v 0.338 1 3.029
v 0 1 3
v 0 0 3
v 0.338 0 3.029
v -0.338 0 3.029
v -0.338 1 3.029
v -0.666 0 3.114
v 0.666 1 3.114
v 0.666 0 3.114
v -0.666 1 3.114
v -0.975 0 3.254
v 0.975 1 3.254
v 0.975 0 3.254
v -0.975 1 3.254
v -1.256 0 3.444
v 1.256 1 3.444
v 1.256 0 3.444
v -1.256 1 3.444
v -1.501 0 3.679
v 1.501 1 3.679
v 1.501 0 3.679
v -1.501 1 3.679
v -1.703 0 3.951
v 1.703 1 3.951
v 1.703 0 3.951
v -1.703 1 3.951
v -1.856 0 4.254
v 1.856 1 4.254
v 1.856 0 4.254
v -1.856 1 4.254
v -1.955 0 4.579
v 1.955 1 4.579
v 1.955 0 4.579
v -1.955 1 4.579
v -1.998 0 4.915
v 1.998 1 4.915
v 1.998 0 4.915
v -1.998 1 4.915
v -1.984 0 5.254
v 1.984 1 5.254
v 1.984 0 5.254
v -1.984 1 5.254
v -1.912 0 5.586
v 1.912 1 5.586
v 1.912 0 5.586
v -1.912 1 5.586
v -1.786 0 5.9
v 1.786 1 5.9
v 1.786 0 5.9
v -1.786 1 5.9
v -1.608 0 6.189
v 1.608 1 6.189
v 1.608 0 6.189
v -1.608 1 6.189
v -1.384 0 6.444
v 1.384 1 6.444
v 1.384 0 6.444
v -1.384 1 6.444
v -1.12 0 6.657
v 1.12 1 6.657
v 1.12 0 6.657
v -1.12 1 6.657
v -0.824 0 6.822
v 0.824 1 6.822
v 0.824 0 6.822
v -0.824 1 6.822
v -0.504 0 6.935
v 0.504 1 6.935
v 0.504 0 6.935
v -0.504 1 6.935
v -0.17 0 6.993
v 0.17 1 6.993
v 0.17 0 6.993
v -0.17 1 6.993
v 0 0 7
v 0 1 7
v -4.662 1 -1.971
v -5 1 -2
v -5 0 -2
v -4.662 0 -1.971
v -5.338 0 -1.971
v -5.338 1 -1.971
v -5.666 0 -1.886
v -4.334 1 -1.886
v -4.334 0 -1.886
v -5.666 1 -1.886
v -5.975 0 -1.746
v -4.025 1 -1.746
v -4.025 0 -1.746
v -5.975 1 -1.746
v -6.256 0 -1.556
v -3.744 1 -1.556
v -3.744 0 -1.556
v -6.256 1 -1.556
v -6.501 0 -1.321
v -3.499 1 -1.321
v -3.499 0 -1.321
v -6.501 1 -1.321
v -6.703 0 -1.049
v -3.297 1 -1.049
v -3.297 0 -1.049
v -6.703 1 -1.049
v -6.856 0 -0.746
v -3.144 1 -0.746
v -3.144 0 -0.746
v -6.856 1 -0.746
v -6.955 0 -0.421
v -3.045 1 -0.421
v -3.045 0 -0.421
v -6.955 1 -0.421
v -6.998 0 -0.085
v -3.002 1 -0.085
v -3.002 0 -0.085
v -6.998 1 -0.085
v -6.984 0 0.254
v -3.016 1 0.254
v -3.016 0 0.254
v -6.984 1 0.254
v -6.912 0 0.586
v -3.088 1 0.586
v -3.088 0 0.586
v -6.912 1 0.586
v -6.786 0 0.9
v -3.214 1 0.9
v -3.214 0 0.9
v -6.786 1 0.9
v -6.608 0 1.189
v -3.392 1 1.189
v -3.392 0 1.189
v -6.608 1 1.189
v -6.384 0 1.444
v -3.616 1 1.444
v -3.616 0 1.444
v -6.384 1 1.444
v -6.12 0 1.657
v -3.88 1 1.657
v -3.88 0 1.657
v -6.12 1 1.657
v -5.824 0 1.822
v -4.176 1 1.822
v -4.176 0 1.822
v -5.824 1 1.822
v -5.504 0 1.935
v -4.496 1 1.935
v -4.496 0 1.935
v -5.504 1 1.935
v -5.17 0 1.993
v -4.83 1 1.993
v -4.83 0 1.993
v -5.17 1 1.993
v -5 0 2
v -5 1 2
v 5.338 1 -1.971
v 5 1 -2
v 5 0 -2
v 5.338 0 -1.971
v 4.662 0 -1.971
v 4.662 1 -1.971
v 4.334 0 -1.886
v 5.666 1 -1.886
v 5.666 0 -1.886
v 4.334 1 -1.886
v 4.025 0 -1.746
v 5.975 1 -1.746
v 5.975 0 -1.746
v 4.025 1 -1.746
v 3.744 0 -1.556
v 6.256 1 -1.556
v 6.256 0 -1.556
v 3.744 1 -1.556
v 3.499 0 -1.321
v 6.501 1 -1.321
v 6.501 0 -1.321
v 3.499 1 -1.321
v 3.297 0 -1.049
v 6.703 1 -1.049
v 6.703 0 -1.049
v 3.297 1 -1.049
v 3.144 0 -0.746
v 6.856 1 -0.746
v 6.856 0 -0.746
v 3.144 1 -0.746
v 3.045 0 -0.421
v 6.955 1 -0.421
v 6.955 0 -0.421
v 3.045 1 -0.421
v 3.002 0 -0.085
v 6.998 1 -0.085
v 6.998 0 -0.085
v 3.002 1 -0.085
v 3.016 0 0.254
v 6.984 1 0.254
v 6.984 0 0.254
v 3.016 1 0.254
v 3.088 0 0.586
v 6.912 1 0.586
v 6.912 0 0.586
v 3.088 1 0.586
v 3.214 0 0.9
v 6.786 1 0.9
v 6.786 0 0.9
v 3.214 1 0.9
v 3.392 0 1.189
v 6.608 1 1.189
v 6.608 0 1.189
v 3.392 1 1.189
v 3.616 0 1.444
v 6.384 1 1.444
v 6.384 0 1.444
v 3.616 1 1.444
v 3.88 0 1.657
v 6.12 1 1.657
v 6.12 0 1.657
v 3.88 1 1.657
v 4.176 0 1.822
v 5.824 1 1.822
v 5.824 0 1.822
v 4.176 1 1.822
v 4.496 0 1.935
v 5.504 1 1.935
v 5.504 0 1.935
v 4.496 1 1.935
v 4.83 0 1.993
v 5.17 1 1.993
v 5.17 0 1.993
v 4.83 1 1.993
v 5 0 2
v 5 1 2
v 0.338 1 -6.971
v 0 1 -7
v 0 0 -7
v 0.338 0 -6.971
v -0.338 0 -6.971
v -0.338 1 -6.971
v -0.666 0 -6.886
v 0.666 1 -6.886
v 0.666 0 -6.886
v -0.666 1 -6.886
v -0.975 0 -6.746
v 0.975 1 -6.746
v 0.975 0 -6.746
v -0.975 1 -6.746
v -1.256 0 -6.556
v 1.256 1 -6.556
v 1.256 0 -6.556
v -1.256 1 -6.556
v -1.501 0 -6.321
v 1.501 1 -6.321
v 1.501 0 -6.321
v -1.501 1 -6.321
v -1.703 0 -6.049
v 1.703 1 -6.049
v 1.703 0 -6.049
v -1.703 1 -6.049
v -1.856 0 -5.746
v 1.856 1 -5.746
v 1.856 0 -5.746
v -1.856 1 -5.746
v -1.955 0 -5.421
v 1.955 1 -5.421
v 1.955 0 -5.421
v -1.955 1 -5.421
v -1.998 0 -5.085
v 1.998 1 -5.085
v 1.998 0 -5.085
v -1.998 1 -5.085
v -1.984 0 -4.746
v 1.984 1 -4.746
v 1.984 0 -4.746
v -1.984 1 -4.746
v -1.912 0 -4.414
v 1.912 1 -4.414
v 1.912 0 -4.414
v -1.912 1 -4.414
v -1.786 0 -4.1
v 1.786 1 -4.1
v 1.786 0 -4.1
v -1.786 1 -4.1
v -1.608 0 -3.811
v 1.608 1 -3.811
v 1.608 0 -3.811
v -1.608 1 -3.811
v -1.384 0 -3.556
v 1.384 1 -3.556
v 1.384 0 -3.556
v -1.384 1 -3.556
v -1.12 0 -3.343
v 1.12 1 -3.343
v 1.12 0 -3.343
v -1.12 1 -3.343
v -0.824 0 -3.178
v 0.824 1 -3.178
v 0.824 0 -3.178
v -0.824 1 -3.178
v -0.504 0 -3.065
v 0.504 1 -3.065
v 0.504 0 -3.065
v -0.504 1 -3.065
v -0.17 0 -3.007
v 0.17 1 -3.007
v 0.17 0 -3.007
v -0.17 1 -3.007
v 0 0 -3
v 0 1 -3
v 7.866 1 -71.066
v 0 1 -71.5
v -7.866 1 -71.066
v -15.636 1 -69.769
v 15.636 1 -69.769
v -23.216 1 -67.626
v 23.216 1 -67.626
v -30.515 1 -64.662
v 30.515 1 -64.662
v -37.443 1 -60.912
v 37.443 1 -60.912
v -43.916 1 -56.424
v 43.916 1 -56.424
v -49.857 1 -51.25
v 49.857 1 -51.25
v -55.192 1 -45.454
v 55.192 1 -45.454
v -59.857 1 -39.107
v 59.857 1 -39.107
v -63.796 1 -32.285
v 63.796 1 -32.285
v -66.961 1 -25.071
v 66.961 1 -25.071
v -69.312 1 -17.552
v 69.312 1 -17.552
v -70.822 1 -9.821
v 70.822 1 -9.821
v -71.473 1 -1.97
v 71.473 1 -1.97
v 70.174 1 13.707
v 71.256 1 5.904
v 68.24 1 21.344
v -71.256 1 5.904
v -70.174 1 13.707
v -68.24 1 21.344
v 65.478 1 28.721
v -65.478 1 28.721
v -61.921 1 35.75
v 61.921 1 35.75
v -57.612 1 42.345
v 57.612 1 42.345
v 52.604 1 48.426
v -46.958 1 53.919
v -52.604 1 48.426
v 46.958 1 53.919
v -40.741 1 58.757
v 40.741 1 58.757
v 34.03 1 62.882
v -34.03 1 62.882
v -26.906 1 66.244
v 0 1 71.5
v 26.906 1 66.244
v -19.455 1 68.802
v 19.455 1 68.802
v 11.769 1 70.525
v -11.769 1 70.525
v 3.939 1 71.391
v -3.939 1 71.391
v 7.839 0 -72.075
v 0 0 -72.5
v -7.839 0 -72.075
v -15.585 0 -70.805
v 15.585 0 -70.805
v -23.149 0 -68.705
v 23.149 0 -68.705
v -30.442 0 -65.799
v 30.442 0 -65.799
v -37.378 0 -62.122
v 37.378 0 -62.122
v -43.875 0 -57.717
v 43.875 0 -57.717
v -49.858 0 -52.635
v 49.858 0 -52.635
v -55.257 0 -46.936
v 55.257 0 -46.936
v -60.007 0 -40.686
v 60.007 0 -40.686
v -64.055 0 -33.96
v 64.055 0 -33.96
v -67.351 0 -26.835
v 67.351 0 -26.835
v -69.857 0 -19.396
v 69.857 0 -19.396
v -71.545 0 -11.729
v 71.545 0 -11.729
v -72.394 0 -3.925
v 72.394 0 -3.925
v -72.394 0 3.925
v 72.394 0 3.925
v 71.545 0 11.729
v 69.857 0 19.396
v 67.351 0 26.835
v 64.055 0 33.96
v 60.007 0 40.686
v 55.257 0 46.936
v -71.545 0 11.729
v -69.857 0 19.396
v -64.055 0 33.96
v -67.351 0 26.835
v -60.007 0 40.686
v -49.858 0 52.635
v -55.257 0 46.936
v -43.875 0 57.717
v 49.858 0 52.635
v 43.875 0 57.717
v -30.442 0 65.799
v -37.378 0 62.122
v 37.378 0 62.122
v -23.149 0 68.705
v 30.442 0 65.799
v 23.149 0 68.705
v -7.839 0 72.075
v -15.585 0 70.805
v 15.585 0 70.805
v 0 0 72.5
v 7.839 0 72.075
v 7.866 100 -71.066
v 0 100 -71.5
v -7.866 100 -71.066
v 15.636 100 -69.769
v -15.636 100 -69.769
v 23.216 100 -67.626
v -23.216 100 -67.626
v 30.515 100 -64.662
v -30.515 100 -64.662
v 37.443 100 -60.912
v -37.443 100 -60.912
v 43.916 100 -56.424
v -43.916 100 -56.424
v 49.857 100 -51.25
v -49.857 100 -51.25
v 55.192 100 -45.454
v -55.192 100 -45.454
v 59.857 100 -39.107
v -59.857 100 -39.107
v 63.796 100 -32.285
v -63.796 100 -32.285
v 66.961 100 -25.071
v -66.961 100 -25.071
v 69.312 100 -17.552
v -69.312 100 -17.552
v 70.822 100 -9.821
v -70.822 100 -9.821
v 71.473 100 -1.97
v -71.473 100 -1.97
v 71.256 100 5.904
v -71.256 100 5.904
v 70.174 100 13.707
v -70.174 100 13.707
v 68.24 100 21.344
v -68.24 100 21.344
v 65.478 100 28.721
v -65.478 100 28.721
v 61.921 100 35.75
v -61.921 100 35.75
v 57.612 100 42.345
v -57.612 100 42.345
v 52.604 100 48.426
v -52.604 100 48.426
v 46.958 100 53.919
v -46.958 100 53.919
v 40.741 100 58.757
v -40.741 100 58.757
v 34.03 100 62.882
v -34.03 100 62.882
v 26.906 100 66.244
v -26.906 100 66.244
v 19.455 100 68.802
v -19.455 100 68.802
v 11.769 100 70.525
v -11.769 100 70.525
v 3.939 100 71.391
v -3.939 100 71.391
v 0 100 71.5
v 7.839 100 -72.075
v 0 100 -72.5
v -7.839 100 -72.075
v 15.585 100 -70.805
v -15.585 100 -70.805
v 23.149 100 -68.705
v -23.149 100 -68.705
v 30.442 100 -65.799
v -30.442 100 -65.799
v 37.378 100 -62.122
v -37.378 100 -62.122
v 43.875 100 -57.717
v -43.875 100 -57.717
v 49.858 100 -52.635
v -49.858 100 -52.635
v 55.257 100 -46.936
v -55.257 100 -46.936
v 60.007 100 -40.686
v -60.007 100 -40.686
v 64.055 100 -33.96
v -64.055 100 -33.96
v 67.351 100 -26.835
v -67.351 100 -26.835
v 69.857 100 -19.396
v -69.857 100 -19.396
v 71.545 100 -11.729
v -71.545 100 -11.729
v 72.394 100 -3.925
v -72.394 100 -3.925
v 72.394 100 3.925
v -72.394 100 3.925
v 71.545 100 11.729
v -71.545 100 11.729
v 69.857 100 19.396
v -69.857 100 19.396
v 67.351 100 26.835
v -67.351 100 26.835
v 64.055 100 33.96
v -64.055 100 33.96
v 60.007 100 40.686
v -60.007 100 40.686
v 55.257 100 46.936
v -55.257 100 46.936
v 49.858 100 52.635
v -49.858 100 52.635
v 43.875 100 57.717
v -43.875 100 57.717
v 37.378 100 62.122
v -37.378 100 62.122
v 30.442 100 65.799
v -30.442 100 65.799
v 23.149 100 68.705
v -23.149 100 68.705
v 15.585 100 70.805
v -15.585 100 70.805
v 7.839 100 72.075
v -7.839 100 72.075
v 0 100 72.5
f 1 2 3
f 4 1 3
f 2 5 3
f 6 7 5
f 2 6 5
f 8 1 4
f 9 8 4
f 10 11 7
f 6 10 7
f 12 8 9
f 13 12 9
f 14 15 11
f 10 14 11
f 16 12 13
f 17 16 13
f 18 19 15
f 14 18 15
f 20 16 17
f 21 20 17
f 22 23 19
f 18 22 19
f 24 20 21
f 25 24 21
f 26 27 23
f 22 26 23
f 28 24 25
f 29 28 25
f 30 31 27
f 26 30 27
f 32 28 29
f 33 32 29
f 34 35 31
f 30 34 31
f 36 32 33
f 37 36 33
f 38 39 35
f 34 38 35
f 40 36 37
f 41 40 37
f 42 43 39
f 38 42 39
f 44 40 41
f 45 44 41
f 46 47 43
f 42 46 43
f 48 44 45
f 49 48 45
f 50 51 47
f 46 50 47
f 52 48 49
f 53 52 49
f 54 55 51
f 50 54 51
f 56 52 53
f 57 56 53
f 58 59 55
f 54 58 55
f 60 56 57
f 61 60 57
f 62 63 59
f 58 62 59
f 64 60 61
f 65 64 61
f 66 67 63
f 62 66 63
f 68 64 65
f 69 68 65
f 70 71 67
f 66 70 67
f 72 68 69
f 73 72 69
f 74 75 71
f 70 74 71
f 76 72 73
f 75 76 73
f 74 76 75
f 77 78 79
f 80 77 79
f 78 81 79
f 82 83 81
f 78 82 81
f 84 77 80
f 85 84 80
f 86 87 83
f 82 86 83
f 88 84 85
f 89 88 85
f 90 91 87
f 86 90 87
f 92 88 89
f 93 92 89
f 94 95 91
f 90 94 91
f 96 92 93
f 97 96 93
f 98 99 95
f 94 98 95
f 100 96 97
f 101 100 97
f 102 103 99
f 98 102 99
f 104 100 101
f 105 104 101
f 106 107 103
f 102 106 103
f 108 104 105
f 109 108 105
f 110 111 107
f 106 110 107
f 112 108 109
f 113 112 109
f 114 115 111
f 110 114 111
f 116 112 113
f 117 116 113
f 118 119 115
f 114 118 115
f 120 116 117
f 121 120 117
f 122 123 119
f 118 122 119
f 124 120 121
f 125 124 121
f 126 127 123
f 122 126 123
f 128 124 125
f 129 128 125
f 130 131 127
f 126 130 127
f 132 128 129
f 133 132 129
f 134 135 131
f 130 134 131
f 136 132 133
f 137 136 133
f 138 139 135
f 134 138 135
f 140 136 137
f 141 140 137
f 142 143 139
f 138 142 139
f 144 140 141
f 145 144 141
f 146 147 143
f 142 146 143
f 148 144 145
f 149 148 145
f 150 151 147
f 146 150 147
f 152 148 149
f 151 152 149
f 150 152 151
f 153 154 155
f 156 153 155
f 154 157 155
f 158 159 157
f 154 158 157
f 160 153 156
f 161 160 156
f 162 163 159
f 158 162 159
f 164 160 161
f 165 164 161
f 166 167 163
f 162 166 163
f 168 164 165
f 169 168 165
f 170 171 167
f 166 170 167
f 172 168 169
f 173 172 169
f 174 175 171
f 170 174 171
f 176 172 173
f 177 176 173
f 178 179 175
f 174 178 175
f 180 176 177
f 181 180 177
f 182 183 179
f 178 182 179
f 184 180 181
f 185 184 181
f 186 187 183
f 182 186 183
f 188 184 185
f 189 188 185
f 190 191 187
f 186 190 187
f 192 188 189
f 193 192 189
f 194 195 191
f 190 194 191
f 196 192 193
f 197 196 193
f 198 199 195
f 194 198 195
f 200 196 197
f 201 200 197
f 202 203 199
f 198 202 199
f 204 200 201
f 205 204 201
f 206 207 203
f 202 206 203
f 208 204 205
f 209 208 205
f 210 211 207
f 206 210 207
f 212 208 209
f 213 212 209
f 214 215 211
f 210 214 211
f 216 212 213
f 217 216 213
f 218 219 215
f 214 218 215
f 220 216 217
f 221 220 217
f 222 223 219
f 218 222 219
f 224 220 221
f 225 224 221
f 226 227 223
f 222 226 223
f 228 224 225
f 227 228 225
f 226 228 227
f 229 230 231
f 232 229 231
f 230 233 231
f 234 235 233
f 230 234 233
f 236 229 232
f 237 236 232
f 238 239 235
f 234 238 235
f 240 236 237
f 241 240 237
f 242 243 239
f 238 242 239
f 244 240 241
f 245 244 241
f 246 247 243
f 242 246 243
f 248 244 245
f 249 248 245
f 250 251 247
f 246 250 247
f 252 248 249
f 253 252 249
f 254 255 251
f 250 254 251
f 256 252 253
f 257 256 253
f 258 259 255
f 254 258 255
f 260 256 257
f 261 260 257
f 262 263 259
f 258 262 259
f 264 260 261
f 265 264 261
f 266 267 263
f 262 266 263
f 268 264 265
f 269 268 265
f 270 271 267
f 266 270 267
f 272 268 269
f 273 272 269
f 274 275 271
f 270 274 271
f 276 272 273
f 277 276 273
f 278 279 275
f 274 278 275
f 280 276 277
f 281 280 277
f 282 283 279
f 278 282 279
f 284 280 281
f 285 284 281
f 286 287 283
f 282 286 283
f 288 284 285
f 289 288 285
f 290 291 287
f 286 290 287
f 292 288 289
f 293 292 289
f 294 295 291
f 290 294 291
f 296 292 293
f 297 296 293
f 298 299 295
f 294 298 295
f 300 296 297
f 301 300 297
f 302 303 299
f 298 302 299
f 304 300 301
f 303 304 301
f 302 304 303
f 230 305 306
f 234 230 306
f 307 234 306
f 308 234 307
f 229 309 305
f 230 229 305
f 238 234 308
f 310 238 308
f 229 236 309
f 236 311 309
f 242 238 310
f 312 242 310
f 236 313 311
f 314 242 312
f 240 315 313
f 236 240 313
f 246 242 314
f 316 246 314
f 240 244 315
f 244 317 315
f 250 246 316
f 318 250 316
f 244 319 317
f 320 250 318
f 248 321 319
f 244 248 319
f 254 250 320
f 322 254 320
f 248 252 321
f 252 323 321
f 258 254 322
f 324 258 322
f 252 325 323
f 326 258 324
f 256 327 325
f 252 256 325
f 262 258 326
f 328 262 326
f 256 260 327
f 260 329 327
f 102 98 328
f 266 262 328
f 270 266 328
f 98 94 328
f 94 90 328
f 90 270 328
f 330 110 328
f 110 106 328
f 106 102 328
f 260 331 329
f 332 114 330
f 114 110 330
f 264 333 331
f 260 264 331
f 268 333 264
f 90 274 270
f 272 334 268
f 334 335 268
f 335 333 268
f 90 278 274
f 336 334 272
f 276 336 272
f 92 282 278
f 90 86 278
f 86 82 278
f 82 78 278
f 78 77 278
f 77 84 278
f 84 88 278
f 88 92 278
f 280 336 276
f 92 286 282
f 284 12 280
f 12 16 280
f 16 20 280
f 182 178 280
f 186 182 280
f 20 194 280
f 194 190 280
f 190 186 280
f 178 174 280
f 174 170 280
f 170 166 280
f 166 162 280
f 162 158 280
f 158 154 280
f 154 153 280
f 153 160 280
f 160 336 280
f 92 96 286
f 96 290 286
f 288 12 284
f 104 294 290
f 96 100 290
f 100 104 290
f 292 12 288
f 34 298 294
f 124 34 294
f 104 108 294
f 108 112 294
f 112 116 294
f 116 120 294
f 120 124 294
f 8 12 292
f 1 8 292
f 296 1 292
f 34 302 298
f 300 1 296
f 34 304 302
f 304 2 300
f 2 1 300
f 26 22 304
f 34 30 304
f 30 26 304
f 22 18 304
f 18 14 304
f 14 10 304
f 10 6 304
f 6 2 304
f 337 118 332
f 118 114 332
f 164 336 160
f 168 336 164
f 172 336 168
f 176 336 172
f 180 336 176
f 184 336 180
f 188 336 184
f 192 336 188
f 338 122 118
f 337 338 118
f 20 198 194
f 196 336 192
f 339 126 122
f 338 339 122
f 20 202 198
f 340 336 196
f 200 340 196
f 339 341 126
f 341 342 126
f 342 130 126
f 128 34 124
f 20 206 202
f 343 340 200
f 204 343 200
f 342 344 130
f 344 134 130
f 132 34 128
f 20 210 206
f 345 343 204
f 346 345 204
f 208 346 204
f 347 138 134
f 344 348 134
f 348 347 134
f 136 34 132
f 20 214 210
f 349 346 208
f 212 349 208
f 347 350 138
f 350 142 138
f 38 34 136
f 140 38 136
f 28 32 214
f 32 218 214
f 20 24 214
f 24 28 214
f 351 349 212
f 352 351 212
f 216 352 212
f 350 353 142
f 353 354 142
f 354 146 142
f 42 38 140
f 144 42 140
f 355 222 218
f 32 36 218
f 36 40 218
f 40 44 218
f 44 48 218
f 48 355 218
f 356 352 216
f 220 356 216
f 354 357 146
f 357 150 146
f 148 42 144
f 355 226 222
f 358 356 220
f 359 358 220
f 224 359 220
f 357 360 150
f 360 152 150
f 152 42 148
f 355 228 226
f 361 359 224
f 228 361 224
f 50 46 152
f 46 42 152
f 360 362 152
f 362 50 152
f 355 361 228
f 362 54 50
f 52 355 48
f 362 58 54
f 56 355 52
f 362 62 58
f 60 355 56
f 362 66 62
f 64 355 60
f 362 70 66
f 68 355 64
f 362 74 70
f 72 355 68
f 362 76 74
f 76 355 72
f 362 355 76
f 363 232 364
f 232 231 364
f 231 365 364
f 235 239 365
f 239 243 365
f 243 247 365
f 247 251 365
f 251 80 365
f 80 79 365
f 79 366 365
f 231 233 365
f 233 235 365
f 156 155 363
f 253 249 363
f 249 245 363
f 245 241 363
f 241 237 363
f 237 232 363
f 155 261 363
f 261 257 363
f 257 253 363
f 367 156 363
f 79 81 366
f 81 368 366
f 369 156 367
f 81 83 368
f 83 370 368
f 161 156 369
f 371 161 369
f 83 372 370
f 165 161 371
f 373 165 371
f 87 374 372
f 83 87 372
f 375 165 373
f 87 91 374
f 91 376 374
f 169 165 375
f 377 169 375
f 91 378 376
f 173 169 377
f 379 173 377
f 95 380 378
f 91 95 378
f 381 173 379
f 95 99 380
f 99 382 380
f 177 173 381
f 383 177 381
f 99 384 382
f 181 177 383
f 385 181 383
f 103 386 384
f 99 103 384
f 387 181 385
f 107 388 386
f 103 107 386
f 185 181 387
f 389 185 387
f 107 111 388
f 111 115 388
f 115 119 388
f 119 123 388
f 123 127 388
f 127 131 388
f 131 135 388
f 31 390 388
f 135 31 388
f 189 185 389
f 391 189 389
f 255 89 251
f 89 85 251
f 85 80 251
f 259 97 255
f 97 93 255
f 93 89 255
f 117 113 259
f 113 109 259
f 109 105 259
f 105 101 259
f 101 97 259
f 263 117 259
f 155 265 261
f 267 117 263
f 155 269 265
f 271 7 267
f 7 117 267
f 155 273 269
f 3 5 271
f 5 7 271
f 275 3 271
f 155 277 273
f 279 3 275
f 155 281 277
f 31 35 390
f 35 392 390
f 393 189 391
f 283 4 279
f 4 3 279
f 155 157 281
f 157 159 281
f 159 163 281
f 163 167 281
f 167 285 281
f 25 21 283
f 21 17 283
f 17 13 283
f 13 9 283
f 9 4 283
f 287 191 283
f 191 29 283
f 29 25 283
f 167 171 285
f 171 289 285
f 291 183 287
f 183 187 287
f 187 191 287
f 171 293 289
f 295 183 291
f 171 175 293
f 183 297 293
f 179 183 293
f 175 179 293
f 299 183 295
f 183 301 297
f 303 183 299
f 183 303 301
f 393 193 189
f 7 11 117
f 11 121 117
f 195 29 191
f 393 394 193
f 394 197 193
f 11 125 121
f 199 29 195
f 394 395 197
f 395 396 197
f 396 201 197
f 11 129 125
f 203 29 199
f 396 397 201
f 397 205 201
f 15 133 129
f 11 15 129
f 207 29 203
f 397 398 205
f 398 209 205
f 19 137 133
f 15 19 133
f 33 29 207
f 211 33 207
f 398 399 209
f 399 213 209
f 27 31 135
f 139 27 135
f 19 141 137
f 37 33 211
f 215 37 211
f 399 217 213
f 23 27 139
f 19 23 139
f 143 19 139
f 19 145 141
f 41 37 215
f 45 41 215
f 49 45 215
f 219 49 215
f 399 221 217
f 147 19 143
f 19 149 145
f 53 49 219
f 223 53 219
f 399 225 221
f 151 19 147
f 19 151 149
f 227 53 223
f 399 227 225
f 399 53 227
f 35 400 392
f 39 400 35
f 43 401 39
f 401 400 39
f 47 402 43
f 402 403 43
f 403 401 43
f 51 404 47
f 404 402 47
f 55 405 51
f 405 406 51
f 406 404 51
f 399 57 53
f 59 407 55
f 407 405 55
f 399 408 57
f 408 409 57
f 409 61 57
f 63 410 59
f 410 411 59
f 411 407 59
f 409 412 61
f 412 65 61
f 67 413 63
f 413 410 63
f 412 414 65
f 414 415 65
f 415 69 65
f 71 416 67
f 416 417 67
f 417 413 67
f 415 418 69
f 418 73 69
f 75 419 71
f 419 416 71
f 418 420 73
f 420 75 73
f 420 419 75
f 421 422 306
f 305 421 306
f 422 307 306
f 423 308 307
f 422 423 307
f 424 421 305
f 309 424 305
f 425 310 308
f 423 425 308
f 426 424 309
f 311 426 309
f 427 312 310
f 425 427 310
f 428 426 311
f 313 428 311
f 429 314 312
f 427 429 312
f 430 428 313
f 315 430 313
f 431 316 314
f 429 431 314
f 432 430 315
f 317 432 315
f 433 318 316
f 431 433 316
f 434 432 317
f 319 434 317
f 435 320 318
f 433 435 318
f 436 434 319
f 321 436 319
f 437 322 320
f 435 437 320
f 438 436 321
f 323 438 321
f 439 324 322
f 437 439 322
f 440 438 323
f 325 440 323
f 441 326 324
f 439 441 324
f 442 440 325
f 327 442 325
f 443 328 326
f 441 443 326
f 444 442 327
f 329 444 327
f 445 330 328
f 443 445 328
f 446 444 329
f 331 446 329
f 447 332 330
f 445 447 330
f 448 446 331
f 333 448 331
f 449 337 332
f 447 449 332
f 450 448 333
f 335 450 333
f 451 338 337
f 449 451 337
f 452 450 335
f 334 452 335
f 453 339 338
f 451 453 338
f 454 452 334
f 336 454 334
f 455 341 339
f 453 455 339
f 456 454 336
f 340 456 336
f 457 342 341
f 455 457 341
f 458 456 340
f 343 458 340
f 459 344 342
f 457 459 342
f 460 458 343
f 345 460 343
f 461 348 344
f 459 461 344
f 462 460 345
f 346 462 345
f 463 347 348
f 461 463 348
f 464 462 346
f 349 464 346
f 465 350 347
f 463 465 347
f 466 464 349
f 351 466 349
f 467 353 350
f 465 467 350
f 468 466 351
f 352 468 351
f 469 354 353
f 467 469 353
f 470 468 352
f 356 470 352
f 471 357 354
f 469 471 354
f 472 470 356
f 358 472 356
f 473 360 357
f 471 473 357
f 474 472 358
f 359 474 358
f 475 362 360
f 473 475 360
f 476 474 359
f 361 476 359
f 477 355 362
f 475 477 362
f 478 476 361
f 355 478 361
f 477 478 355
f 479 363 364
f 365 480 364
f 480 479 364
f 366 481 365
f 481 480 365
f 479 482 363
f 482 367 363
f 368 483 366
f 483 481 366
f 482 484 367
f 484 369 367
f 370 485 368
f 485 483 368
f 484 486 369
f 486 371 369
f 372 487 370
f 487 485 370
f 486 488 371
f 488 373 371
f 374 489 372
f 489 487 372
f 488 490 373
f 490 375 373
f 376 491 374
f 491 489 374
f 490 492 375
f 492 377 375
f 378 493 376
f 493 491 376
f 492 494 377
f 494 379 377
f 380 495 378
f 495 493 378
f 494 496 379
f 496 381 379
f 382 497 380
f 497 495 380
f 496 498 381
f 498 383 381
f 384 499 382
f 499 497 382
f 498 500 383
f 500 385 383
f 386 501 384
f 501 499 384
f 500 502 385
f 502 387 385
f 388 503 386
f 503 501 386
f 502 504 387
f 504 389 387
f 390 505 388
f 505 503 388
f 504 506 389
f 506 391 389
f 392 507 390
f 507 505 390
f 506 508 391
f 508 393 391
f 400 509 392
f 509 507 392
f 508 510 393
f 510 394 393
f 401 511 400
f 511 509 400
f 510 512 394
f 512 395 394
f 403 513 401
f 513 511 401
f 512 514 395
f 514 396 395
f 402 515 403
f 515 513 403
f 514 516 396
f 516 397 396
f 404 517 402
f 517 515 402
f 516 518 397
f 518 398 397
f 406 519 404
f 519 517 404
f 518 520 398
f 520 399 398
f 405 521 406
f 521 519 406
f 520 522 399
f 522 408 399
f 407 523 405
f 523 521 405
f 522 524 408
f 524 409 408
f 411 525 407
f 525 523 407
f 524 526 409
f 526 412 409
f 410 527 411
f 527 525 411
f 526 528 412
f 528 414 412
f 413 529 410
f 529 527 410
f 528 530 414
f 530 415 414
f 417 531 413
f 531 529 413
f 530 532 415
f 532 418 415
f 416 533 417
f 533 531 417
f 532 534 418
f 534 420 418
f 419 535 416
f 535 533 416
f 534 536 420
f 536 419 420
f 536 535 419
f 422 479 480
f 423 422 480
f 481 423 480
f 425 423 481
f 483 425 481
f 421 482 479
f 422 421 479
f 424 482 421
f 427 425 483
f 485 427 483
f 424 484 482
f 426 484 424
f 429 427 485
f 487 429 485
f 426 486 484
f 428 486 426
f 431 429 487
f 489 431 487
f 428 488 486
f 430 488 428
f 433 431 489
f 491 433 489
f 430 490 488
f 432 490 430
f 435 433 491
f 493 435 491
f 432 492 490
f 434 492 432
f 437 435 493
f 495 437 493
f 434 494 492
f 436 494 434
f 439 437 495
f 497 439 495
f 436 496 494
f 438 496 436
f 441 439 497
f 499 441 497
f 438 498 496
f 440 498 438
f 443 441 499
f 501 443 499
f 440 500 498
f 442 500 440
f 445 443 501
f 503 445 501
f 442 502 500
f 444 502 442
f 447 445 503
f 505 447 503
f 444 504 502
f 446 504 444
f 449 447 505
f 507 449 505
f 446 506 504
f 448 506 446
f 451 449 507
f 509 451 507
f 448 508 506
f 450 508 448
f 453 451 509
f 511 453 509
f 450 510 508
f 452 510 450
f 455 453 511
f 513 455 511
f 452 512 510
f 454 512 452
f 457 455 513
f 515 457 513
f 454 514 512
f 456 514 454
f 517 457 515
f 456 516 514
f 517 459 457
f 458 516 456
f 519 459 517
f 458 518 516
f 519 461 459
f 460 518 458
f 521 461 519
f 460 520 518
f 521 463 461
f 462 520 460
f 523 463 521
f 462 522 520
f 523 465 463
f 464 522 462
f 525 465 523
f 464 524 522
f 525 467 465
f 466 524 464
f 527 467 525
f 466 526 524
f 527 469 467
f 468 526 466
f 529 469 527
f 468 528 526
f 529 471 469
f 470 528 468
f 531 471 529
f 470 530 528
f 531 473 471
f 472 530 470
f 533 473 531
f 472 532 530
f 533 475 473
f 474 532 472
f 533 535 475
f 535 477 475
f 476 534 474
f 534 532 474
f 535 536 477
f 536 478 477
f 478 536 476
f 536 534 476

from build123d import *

# Parameters (mm, degrees)
SKETCH_6_R      = 71.5
SKETCH_6_R_2    = 2
EXTRUDE_2_DEPTH = 1
SKETCH_6_7_R    = 72.5
SKETCH_6_7_R_2  = 71.5
EXTRUDE_3_DEPTH = 100


with BuildPart() as part:
    # 草圖6 → 填料-伸長2 (new body)
    with BuildSketch(Plane(origin=(0, 0, 0), x_dir=(1, 0, 0), z_dir=(0, 1, 0))):
        Circle(SKETCH_6_R)
        with Locations((0, -5)):
            Circle(SKETCH_6_R_2, mode=Mode.SUBTRACT)
        with Locations((-5, 0)):
            Circle(SKETCH_6_R_2, mode=Mode.SUBTRACT)
        with Locations((5, 0)):
            Circle(SKETCH_6_R_2, mode=Mode.SUBTRACT)
        with Locations((0, 5)):
            Circle(SKETCH_6_R_2, mode=Mode.SUBTRACT)
    extrude(amount=EXTRUDE_2_DEPTH)

    # 草圖6<7> → 填料-伸長3 (add)
    with BuildSketch(Plane(origin=(0, 0, 0), x_dir=(1, 0, 0), z_dir=(0, 1, 0))):
        Circle(SKETCH_6_7_R)
        Circle(SKETCH_6_7_R_2, mode=Mode.SUBTRACT)
    extrude(amount=EXTRUDE_3_DEPTH)


solid = part.part
